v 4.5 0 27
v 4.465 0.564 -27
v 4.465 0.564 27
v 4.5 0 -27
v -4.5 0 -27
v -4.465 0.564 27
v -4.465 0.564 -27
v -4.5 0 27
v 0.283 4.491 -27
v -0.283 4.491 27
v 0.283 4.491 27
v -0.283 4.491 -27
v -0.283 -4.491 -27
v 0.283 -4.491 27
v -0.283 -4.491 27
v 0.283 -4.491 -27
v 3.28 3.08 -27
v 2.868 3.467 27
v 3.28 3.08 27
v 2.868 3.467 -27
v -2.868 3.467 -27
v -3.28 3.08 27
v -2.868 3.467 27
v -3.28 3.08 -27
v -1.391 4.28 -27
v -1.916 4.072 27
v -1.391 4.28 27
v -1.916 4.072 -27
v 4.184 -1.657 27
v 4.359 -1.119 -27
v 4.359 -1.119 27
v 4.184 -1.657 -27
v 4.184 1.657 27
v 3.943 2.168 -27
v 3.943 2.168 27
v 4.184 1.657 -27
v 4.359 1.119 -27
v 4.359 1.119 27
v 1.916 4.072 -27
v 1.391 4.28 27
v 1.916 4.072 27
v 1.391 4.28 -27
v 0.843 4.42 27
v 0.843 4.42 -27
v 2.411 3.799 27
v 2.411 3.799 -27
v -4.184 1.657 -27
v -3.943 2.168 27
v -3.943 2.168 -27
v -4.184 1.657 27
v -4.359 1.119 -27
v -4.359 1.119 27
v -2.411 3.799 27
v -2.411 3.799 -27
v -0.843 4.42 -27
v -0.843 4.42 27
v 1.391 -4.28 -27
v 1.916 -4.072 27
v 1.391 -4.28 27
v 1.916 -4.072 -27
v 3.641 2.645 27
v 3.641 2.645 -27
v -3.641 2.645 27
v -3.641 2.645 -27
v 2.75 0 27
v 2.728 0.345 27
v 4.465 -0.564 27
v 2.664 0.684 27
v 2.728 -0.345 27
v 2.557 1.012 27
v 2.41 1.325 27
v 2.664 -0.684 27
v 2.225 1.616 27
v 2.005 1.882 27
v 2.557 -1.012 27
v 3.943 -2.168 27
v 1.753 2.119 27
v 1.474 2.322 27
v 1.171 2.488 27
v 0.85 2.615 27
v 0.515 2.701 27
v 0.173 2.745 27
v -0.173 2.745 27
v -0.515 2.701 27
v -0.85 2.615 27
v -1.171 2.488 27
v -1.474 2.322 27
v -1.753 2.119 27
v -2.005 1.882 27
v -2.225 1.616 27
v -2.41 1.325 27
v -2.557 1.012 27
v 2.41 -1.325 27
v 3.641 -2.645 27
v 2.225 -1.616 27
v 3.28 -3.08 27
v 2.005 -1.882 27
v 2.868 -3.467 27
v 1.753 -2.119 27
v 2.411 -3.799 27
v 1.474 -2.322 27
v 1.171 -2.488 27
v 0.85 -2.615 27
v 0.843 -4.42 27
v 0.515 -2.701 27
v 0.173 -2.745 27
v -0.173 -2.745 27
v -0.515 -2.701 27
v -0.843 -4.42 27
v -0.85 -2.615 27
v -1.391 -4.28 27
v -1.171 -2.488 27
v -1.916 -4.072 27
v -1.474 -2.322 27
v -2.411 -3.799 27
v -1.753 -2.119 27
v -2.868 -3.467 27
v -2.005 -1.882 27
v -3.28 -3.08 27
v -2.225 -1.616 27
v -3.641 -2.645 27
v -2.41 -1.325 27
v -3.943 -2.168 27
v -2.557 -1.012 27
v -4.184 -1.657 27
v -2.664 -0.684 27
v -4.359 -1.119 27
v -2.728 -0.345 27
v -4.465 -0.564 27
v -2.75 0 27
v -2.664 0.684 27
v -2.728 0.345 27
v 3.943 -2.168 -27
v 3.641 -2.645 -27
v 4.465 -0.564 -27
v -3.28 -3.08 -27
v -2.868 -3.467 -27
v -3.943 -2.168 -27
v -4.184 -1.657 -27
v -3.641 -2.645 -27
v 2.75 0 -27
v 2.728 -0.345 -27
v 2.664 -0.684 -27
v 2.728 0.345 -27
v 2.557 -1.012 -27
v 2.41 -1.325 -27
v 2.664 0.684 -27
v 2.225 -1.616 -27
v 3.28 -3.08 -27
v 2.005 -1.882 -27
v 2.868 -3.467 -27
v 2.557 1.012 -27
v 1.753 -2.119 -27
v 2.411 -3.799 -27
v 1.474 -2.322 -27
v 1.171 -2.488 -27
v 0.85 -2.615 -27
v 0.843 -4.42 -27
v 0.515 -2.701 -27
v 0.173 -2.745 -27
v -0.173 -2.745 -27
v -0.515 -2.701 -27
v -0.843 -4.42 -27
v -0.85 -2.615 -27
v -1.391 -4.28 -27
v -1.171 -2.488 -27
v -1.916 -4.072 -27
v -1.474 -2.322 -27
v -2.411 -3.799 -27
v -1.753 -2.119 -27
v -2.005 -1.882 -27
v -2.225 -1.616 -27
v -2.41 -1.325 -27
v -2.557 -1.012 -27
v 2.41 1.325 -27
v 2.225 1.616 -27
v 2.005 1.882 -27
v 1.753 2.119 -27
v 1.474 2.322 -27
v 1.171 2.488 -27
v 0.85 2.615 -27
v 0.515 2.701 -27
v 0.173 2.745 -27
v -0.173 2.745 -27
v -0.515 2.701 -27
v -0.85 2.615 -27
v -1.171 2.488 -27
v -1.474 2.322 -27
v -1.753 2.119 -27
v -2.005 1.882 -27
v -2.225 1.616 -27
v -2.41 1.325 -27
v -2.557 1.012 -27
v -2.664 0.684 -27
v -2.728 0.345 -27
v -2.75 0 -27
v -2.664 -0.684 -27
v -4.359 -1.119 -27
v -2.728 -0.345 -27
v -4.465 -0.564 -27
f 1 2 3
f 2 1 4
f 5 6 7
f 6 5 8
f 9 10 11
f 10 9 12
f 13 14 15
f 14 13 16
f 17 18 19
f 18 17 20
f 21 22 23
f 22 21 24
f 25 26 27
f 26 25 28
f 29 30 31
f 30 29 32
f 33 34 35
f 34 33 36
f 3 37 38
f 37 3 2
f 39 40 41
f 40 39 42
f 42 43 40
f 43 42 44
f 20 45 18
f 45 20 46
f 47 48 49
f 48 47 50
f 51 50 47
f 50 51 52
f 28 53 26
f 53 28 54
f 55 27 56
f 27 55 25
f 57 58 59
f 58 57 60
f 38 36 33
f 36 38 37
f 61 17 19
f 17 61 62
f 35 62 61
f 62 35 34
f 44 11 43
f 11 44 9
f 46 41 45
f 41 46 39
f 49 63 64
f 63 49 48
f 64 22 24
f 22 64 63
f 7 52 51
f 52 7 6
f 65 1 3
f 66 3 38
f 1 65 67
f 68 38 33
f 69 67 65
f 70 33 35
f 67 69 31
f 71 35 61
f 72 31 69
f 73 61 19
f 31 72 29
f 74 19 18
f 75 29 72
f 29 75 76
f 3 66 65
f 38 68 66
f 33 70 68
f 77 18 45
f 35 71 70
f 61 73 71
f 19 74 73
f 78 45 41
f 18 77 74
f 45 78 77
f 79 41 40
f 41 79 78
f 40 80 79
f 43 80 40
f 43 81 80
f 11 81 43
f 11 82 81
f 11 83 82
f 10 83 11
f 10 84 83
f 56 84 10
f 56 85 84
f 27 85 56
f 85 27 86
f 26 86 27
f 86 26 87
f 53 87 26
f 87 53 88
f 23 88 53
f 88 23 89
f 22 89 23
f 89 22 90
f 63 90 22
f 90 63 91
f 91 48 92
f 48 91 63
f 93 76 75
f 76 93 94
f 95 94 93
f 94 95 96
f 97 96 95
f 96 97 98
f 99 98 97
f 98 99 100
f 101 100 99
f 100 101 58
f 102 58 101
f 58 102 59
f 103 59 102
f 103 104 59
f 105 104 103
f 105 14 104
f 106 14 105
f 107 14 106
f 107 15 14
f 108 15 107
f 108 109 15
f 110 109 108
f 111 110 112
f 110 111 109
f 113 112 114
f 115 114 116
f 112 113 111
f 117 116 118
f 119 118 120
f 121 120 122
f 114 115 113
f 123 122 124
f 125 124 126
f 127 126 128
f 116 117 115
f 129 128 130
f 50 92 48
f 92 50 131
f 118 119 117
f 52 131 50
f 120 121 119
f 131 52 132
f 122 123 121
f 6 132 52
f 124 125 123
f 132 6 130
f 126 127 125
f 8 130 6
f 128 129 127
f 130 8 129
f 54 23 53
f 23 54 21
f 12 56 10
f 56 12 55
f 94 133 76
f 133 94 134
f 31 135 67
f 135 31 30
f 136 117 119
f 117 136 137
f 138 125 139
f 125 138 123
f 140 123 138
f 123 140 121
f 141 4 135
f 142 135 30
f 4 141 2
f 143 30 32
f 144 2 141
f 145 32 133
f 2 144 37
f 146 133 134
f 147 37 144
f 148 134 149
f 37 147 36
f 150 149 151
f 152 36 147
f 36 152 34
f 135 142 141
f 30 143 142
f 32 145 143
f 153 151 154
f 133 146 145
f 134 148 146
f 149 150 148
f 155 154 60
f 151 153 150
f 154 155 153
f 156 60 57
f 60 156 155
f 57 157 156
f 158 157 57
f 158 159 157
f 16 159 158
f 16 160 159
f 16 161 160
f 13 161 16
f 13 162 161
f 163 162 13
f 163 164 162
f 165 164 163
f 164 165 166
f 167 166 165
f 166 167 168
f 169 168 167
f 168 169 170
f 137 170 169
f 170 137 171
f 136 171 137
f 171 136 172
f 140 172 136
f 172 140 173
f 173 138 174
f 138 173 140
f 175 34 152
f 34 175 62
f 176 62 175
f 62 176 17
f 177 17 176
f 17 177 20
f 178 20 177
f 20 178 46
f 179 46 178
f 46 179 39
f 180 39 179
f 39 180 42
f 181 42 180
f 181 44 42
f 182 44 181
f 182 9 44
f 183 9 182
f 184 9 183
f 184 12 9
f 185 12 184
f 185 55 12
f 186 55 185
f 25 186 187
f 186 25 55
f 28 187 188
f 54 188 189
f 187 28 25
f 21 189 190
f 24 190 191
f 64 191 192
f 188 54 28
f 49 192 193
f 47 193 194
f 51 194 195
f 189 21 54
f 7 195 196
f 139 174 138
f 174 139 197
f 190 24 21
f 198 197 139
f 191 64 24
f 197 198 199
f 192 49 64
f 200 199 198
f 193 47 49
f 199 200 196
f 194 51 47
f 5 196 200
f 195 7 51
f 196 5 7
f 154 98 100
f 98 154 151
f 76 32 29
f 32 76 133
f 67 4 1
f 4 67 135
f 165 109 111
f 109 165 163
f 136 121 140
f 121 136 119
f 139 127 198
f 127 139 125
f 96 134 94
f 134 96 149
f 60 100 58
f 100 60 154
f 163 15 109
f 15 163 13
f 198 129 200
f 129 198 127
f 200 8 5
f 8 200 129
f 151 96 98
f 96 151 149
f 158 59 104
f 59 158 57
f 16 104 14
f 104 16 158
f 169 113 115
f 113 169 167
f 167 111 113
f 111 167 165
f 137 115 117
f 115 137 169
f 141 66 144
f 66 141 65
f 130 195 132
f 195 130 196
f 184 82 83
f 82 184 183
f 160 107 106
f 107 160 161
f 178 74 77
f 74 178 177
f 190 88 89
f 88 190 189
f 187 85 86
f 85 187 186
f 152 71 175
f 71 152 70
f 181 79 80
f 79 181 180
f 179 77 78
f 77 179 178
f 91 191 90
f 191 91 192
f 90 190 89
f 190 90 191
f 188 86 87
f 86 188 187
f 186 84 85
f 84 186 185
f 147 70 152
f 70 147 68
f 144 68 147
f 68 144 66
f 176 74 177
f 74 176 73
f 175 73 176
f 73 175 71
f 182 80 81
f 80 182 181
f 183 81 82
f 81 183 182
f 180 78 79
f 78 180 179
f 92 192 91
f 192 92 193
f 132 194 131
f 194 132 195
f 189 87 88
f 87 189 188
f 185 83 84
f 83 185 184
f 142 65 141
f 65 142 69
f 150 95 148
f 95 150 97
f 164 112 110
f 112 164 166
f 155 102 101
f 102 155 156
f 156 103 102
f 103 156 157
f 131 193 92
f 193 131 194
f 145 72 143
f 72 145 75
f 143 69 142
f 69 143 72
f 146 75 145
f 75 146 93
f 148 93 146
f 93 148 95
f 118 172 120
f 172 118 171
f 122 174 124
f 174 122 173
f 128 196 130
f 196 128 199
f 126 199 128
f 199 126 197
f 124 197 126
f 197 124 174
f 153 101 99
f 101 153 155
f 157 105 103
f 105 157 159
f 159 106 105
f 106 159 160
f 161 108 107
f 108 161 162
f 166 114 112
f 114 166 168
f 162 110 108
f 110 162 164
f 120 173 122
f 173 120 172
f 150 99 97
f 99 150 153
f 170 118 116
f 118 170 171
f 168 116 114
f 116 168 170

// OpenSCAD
$fn = 50;


difference() {
	union() {
		translate(v = [0, 0, -27.0000000000]) {
			cylinder(h = 54, r = 4.5000000000);
		}
	}
	union() {
		translate(v = [0, 0, -100.0000000000]) {
			cylinder(h = 200, r = 2.7500000000);
		}
	}
}
